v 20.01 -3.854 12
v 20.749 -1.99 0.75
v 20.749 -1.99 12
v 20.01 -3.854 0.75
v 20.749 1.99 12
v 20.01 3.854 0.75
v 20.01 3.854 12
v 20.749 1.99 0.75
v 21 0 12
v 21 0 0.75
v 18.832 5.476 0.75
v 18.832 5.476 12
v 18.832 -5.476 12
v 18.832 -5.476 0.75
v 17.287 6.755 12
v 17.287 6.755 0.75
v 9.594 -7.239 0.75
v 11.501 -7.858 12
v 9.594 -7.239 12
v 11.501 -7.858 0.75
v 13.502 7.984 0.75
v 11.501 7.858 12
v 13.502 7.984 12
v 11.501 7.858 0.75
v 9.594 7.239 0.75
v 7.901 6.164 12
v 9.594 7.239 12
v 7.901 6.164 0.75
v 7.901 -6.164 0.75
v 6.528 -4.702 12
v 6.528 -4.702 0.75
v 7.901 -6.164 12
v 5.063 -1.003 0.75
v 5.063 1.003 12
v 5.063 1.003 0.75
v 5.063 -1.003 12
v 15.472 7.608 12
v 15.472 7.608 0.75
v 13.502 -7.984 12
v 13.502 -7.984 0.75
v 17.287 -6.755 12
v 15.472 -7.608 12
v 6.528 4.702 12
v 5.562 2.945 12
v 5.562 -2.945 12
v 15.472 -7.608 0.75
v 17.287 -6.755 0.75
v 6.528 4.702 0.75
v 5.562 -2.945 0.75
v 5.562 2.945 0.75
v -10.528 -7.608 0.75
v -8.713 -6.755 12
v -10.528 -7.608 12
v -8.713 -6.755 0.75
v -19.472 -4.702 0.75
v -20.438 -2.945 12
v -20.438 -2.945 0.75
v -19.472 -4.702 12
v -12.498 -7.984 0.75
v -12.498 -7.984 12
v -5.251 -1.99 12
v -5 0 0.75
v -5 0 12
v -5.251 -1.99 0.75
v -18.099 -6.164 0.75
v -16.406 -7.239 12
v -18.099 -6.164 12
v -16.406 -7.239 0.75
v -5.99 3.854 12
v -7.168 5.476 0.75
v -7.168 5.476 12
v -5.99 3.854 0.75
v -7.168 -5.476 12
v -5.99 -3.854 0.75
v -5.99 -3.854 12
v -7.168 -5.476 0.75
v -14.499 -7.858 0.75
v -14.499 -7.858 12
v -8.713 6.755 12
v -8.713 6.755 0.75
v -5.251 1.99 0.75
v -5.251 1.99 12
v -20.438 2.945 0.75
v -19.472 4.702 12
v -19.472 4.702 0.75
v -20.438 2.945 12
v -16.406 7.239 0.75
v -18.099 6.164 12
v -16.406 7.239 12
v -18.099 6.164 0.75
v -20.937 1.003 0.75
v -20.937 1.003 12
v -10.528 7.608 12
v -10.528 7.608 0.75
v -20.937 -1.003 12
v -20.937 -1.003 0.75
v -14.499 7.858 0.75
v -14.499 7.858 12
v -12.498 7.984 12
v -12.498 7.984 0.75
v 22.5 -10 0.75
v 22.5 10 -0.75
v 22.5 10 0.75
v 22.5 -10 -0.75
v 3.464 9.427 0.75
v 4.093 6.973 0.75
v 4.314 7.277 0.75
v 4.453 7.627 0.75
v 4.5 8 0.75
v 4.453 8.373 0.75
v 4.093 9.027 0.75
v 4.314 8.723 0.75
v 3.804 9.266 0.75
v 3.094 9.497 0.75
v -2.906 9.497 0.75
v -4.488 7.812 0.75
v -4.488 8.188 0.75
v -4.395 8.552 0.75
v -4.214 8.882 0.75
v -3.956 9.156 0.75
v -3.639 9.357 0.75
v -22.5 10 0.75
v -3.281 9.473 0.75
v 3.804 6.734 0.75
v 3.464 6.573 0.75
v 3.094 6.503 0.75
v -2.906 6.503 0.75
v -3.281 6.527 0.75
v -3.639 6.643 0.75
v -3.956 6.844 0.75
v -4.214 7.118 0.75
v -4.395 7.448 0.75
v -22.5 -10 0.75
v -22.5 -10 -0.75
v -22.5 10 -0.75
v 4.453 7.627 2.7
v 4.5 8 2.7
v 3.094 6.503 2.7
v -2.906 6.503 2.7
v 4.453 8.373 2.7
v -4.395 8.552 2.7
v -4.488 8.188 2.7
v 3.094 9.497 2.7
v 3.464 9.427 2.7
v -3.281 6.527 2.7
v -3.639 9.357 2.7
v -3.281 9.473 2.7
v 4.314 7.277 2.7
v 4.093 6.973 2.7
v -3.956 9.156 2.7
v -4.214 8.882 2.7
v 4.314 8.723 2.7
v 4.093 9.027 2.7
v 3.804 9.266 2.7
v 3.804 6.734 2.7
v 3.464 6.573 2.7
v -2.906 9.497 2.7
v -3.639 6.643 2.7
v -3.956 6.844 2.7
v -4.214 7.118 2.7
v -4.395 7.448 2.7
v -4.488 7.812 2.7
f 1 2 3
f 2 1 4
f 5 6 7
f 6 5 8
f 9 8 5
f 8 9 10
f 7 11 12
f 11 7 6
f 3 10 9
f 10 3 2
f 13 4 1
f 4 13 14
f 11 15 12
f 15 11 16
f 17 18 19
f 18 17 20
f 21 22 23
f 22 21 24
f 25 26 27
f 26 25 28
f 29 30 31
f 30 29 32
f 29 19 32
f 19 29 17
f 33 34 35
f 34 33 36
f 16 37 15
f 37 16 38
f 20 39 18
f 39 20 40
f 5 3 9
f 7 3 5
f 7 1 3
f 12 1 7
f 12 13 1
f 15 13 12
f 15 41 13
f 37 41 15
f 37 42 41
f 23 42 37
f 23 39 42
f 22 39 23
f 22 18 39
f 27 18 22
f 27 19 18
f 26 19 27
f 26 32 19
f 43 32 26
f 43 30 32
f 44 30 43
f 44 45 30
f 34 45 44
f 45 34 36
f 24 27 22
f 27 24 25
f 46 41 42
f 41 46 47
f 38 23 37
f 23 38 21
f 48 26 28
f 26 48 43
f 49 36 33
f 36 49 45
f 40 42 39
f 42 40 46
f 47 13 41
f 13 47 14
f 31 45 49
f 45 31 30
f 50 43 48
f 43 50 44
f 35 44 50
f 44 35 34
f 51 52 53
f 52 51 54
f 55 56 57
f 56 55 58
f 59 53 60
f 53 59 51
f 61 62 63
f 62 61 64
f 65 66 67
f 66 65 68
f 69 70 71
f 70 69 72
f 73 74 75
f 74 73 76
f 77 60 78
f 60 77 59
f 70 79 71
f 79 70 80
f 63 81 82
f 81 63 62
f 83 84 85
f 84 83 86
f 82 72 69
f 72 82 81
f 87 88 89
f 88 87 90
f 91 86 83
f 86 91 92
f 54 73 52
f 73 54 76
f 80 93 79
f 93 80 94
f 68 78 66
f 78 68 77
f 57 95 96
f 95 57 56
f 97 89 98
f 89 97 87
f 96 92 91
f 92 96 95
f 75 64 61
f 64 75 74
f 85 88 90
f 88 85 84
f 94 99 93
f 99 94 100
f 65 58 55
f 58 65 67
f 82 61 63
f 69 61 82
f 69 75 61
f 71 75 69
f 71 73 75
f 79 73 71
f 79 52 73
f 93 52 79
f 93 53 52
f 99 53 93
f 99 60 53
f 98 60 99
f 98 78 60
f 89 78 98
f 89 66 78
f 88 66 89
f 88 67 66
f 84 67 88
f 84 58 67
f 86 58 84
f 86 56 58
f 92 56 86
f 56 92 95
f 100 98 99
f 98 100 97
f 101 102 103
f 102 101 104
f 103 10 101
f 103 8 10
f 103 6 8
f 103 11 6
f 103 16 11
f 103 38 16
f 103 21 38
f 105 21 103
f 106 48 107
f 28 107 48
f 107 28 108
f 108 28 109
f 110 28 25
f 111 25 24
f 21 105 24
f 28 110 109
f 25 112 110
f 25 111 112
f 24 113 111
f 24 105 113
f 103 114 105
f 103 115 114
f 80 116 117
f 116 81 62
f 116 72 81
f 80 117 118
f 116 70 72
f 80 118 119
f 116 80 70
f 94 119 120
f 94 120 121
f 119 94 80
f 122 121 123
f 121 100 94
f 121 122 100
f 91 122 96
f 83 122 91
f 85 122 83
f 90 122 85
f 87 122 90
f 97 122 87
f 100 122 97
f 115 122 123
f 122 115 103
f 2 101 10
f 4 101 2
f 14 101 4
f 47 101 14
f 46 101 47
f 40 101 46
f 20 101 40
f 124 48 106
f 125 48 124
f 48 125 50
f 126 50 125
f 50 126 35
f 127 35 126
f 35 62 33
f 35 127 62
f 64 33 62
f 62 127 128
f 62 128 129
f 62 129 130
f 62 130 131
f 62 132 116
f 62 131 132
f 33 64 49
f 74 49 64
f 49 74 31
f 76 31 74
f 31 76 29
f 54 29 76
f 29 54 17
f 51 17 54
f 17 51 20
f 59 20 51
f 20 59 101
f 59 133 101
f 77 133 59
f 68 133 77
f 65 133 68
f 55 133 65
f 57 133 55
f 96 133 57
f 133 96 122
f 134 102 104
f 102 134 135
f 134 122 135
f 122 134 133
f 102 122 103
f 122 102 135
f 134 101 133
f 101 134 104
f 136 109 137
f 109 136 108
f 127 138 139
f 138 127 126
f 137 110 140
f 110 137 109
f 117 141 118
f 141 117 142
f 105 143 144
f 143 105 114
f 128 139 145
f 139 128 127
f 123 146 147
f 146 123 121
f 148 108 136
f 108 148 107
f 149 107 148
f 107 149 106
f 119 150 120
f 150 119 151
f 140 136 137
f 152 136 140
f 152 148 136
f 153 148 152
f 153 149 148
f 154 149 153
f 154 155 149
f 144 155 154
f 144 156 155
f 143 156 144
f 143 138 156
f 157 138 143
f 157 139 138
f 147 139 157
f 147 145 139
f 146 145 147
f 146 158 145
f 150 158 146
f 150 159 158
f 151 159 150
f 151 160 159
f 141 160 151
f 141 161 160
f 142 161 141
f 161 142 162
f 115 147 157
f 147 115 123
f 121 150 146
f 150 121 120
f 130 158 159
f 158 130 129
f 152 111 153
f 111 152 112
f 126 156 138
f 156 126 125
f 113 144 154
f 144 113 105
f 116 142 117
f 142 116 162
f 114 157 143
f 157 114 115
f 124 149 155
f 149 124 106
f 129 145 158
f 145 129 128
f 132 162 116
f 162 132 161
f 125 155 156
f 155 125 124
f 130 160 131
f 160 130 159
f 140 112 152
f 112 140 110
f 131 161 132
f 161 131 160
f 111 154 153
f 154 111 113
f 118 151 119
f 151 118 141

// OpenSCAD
// NAME: HC-S04 Ultrasound Sensor
// CATEGORY: Electric
// COLOR: 2

$fn=25;

module hc_s04(){
    cube([45, 20, 1.5], center=true);
    for(i=[-1, 1])
        translate([i*-13, 0, 0])
            cylinder(d=16, h=12);

    translate([0, 8, 0])
        hull(){
            for (i=[-1, 1])
                translate([i*3, 0, 0.7])
                    cylinder(d=3, h=2);
        }
}

hc_s04();
